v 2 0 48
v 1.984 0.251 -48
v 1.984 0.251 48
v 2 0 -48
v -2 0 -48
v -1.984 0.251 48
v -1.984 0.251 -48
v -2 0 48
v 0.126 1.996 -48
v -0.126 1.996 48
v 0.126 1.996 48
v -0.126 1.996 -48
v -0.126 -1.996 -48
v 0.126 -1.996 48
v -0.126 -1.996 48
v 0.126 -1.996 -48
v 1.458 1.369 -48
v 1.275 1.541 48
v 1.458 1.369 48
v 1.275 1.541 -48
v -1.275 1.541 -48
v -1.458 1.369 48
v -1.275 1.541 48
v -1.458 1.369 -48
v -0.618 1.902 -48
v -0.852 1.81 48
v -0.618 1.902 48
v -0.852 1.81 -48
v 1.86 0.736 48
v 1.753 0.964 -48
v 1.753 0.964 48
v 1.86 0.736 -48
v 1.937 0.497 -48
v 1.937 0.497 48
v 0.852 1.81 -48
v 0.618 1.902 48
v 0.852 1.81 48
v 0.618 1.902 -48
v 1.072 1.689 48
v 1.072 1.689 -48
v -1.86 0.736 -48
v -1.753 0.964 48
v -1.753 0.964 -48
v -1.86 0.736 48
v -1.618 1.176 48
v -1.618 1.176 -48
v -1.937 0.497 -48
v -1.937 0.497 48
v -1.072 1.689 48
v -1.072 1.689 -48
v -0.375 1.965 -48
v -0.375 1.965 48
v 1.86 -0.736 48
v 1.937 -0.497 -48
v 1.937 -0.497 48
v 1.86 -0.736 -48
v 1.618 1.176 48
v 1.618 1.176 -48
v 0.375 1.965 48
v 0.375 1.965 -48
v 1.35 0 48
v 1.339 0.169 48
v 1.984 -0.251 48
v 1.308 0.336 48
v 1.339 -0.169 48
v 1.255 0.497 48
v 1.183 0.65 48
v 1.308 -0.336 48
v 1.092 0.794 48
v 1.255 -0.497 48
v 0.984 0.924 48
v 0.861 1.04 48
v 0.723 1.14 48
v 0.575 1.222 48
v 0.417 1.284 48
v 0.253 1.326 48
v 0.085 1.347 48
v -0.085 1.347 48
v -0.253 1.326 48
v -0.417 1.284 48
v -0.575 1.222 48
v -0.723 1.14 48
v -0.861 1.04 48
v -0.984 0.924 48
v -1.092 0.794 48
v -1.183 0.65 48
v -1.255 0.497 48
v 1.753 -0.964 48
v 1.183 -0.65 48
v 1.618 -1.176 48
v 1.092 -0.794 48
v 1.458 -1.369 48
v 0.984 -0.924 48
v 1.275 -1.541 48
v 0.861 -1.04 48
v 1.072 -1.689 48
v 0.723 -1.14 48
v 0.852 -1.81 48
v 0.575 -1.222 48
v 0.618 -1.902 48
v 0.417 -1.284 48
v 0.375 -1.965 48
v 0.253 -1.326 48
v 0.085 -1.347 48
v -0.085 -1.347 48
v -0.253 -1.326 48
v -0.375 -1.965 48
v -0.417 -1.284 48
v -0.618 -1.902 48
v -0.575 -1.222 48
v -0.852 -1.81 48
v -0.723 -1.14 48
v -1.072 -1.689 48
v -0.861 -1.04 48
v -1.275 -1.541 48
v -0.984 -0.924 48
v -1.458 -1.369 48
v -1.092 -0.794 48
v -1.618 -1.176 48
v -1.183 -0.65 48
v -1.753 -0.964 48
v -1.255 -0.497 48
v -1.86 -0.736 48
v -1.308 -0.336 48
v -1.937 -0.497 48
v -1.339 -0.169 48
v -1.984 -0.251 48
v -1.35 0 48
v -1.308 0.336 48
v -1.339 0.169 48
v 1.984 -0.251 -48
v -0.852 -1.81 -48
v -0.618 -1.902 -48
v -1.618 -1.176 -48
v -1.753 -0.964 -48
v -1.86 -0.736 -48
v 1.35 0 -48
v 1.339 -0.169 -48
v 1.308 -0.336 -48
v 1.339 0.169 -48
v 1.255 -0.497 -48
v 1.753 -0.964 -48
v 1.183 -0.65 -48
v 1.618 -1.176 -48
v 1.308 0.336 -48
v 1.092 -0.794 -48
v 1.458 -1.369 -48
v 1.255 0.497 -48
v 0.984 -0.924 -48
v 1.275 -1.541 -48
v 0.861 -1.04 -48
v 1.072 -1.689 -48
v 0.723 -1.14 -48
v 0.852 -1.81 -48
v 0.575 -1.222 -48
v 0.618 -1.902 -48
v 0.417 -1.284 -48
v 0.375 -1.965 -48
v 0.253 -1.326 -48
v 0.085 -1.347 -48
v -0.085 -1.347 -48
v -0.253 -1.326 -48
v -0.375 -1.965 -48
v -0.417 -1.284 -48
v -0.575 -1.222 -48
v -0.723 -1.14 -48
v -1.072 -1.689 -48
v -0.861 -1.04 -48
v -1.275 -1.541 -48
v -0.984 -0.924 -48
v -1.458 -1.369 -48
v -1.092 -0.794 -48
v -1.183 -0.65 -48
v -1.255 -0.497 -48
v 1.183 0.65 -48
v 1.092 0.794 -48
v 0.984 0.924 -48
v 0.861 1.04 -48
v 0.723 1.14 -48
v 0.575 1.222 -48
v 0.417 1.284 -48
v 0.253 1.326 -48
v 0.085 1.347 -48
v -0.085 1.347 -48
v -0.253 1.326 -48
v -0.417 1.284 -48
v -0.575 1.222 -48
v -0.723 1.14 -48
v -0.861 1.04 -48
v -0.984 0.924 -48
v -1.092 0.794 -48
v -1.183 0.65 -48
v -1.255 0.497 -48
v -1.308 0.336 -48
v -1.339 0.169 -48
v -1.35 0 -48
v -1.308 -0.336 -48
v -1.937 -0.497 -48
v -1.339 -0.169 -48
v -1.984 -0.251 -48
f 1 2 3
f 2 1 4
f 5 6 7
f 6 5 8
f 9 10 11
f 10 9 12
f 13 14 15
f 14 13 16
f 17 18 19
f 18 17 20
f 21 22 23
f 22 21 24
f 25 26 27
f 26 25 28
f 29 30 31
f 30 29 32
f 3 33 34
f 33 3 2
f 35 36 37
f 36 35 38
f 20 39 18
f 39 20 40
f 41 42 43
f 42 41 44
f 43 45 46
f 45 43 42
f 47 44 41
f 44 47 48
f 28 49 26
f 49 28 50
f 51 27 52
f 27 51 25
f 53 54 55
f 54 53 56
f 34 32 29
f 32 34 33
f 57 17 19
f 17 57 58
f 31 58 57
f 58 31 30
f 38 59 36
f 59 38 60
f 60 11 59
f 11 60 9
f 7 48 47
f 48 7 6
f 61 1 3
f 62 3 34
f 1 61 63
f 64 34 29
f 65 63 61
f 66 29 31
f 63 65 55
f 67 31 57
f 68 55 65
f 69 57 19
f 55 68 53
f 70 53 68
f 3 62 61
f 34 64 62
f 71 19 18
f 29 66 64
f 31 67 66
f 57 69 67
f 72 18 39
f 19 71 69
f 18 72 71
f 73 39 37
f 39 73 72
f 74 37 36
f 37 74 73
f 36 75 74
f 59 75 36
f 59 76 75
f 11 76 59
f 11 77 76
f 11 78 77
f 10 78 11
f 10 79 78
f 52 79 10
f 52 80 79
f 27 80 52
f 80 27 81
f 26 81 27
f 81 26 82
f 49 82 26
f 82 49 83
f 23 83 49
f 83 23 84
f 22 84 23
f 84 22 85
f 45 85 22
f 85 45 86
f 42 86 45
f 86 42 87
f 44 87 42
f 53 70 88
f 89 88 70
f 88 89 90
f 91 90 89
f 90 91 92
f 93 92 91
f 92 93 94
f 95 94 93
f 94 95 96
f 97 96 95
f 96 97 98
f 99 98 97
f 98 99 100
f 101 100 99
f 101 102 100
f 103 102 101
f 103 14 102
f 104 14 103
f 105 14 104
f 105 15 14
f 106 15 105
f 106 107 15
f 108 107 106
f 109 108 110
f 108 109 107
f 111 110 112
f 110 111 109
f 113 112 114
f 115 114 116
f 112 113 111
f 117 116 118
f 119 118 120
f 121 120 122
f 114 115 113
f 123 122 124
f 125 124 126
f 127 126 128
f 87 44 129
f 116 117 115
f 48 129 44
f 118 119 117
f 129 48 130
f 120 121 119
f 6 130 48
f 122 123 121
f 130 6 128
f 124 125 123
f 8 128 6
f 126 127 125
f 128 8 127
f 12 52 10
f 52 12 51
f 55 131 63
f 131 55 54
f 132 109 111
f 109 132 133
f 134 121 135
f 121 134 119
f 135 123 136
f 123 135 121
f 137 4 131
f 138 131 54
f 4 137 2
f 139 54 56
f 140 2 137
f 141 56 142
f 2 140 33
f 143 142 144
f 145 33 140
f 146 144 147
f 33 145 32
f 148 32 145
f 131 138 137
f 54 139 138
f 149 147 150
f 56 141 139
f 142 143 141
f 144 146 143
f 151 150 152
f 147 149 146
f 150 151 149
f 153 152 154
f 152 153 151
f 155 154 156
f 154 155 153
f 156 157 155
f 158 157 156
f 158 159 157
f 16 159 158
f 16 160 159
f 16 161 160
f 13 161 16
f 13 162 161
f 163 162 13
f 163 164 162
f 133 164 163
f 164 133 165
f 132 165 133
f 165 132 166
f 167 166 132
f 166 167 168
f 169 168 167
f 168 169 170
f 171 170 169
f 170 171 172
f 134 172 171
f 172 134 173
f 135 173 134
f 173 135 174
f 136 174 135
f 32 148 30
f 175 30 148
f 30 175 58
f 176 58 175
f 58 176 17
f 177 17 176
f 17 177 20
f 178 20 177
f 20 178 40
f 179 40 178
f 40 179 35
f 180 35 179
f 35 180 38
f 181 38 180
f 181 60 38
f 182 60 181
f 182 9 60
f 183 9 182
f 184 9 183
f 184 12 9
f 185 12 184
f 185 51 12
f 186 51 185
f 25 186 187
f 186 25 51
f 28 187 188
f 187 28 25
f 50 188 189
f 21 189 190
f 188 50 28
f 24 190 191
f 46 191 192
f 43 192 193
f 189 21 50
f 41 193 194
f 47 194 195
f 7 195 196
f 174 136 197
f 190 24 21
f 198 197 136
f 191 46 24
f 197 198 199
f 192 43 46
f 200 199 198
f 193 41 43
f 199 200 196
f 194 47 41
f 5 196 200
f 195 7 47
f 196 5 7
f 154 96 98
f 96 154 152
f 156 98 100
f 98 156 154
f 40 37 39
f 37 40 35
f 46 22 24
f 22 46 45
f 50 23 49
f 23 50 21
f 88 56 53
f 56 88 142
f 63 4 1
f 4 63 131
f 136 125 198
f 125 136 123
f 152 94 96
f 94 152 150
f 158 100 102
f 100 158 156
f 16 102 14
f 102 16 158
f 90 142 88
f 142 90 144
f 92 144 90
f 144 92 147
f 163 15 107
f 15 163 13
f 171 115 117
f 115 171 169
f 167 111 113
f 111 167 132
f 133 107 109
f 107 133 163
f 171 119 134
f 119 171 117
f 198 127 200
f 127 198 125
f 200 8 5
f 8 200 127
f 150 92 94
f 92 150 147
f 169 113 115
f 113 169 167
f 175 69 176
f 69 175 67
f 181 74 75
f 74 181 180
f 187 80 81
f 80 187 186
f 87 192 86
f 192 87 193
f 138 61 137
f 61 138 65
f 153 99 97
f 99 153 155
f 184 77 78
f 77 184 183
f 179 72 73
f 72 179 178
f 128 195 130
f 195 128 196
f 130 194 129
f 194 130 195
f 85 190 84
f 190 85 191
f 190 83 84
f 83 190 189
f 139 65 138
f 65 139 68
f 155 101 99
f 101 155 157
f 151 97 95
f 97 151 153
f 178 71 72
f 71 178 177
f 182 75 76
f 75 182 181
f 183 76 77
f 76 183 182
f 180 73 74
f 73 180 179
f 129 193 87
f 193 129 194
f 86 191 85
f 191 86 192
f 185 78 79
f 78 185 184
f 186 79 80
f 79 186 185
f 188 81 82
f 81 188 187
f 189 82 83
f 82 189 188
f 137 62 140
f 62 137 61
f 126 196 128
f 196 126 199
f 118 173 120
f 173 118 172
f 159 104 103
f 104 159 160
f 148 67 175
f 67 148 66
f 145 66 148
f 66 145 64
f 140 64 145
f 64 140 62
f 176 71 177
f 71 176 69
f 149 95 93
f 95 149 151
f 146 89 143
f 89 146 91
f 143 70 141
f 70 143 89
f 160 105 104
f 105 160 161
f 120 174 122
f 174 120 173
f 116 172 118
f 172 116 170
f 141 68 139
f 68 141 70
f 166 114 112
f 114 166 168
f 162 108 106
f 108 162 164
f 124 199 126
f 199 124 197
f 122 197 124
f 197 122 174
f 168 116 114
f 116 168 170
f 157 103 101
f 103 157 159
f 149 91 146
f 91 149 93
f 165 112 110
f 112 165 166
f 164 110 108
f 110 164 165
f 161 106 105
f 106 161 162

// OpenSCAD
$fn = 50;


difference() {
	union() {
		translate(v = [0, 0, -48.0000000000]) {
			cylinder(h = 96, r = 2.0000000000);
		}
	}
	union() {
		translate(v = [0, 0, -100.0000000000]) {
			cylinder(h = 200, r = 1.3500000000);
		}
	}
}
